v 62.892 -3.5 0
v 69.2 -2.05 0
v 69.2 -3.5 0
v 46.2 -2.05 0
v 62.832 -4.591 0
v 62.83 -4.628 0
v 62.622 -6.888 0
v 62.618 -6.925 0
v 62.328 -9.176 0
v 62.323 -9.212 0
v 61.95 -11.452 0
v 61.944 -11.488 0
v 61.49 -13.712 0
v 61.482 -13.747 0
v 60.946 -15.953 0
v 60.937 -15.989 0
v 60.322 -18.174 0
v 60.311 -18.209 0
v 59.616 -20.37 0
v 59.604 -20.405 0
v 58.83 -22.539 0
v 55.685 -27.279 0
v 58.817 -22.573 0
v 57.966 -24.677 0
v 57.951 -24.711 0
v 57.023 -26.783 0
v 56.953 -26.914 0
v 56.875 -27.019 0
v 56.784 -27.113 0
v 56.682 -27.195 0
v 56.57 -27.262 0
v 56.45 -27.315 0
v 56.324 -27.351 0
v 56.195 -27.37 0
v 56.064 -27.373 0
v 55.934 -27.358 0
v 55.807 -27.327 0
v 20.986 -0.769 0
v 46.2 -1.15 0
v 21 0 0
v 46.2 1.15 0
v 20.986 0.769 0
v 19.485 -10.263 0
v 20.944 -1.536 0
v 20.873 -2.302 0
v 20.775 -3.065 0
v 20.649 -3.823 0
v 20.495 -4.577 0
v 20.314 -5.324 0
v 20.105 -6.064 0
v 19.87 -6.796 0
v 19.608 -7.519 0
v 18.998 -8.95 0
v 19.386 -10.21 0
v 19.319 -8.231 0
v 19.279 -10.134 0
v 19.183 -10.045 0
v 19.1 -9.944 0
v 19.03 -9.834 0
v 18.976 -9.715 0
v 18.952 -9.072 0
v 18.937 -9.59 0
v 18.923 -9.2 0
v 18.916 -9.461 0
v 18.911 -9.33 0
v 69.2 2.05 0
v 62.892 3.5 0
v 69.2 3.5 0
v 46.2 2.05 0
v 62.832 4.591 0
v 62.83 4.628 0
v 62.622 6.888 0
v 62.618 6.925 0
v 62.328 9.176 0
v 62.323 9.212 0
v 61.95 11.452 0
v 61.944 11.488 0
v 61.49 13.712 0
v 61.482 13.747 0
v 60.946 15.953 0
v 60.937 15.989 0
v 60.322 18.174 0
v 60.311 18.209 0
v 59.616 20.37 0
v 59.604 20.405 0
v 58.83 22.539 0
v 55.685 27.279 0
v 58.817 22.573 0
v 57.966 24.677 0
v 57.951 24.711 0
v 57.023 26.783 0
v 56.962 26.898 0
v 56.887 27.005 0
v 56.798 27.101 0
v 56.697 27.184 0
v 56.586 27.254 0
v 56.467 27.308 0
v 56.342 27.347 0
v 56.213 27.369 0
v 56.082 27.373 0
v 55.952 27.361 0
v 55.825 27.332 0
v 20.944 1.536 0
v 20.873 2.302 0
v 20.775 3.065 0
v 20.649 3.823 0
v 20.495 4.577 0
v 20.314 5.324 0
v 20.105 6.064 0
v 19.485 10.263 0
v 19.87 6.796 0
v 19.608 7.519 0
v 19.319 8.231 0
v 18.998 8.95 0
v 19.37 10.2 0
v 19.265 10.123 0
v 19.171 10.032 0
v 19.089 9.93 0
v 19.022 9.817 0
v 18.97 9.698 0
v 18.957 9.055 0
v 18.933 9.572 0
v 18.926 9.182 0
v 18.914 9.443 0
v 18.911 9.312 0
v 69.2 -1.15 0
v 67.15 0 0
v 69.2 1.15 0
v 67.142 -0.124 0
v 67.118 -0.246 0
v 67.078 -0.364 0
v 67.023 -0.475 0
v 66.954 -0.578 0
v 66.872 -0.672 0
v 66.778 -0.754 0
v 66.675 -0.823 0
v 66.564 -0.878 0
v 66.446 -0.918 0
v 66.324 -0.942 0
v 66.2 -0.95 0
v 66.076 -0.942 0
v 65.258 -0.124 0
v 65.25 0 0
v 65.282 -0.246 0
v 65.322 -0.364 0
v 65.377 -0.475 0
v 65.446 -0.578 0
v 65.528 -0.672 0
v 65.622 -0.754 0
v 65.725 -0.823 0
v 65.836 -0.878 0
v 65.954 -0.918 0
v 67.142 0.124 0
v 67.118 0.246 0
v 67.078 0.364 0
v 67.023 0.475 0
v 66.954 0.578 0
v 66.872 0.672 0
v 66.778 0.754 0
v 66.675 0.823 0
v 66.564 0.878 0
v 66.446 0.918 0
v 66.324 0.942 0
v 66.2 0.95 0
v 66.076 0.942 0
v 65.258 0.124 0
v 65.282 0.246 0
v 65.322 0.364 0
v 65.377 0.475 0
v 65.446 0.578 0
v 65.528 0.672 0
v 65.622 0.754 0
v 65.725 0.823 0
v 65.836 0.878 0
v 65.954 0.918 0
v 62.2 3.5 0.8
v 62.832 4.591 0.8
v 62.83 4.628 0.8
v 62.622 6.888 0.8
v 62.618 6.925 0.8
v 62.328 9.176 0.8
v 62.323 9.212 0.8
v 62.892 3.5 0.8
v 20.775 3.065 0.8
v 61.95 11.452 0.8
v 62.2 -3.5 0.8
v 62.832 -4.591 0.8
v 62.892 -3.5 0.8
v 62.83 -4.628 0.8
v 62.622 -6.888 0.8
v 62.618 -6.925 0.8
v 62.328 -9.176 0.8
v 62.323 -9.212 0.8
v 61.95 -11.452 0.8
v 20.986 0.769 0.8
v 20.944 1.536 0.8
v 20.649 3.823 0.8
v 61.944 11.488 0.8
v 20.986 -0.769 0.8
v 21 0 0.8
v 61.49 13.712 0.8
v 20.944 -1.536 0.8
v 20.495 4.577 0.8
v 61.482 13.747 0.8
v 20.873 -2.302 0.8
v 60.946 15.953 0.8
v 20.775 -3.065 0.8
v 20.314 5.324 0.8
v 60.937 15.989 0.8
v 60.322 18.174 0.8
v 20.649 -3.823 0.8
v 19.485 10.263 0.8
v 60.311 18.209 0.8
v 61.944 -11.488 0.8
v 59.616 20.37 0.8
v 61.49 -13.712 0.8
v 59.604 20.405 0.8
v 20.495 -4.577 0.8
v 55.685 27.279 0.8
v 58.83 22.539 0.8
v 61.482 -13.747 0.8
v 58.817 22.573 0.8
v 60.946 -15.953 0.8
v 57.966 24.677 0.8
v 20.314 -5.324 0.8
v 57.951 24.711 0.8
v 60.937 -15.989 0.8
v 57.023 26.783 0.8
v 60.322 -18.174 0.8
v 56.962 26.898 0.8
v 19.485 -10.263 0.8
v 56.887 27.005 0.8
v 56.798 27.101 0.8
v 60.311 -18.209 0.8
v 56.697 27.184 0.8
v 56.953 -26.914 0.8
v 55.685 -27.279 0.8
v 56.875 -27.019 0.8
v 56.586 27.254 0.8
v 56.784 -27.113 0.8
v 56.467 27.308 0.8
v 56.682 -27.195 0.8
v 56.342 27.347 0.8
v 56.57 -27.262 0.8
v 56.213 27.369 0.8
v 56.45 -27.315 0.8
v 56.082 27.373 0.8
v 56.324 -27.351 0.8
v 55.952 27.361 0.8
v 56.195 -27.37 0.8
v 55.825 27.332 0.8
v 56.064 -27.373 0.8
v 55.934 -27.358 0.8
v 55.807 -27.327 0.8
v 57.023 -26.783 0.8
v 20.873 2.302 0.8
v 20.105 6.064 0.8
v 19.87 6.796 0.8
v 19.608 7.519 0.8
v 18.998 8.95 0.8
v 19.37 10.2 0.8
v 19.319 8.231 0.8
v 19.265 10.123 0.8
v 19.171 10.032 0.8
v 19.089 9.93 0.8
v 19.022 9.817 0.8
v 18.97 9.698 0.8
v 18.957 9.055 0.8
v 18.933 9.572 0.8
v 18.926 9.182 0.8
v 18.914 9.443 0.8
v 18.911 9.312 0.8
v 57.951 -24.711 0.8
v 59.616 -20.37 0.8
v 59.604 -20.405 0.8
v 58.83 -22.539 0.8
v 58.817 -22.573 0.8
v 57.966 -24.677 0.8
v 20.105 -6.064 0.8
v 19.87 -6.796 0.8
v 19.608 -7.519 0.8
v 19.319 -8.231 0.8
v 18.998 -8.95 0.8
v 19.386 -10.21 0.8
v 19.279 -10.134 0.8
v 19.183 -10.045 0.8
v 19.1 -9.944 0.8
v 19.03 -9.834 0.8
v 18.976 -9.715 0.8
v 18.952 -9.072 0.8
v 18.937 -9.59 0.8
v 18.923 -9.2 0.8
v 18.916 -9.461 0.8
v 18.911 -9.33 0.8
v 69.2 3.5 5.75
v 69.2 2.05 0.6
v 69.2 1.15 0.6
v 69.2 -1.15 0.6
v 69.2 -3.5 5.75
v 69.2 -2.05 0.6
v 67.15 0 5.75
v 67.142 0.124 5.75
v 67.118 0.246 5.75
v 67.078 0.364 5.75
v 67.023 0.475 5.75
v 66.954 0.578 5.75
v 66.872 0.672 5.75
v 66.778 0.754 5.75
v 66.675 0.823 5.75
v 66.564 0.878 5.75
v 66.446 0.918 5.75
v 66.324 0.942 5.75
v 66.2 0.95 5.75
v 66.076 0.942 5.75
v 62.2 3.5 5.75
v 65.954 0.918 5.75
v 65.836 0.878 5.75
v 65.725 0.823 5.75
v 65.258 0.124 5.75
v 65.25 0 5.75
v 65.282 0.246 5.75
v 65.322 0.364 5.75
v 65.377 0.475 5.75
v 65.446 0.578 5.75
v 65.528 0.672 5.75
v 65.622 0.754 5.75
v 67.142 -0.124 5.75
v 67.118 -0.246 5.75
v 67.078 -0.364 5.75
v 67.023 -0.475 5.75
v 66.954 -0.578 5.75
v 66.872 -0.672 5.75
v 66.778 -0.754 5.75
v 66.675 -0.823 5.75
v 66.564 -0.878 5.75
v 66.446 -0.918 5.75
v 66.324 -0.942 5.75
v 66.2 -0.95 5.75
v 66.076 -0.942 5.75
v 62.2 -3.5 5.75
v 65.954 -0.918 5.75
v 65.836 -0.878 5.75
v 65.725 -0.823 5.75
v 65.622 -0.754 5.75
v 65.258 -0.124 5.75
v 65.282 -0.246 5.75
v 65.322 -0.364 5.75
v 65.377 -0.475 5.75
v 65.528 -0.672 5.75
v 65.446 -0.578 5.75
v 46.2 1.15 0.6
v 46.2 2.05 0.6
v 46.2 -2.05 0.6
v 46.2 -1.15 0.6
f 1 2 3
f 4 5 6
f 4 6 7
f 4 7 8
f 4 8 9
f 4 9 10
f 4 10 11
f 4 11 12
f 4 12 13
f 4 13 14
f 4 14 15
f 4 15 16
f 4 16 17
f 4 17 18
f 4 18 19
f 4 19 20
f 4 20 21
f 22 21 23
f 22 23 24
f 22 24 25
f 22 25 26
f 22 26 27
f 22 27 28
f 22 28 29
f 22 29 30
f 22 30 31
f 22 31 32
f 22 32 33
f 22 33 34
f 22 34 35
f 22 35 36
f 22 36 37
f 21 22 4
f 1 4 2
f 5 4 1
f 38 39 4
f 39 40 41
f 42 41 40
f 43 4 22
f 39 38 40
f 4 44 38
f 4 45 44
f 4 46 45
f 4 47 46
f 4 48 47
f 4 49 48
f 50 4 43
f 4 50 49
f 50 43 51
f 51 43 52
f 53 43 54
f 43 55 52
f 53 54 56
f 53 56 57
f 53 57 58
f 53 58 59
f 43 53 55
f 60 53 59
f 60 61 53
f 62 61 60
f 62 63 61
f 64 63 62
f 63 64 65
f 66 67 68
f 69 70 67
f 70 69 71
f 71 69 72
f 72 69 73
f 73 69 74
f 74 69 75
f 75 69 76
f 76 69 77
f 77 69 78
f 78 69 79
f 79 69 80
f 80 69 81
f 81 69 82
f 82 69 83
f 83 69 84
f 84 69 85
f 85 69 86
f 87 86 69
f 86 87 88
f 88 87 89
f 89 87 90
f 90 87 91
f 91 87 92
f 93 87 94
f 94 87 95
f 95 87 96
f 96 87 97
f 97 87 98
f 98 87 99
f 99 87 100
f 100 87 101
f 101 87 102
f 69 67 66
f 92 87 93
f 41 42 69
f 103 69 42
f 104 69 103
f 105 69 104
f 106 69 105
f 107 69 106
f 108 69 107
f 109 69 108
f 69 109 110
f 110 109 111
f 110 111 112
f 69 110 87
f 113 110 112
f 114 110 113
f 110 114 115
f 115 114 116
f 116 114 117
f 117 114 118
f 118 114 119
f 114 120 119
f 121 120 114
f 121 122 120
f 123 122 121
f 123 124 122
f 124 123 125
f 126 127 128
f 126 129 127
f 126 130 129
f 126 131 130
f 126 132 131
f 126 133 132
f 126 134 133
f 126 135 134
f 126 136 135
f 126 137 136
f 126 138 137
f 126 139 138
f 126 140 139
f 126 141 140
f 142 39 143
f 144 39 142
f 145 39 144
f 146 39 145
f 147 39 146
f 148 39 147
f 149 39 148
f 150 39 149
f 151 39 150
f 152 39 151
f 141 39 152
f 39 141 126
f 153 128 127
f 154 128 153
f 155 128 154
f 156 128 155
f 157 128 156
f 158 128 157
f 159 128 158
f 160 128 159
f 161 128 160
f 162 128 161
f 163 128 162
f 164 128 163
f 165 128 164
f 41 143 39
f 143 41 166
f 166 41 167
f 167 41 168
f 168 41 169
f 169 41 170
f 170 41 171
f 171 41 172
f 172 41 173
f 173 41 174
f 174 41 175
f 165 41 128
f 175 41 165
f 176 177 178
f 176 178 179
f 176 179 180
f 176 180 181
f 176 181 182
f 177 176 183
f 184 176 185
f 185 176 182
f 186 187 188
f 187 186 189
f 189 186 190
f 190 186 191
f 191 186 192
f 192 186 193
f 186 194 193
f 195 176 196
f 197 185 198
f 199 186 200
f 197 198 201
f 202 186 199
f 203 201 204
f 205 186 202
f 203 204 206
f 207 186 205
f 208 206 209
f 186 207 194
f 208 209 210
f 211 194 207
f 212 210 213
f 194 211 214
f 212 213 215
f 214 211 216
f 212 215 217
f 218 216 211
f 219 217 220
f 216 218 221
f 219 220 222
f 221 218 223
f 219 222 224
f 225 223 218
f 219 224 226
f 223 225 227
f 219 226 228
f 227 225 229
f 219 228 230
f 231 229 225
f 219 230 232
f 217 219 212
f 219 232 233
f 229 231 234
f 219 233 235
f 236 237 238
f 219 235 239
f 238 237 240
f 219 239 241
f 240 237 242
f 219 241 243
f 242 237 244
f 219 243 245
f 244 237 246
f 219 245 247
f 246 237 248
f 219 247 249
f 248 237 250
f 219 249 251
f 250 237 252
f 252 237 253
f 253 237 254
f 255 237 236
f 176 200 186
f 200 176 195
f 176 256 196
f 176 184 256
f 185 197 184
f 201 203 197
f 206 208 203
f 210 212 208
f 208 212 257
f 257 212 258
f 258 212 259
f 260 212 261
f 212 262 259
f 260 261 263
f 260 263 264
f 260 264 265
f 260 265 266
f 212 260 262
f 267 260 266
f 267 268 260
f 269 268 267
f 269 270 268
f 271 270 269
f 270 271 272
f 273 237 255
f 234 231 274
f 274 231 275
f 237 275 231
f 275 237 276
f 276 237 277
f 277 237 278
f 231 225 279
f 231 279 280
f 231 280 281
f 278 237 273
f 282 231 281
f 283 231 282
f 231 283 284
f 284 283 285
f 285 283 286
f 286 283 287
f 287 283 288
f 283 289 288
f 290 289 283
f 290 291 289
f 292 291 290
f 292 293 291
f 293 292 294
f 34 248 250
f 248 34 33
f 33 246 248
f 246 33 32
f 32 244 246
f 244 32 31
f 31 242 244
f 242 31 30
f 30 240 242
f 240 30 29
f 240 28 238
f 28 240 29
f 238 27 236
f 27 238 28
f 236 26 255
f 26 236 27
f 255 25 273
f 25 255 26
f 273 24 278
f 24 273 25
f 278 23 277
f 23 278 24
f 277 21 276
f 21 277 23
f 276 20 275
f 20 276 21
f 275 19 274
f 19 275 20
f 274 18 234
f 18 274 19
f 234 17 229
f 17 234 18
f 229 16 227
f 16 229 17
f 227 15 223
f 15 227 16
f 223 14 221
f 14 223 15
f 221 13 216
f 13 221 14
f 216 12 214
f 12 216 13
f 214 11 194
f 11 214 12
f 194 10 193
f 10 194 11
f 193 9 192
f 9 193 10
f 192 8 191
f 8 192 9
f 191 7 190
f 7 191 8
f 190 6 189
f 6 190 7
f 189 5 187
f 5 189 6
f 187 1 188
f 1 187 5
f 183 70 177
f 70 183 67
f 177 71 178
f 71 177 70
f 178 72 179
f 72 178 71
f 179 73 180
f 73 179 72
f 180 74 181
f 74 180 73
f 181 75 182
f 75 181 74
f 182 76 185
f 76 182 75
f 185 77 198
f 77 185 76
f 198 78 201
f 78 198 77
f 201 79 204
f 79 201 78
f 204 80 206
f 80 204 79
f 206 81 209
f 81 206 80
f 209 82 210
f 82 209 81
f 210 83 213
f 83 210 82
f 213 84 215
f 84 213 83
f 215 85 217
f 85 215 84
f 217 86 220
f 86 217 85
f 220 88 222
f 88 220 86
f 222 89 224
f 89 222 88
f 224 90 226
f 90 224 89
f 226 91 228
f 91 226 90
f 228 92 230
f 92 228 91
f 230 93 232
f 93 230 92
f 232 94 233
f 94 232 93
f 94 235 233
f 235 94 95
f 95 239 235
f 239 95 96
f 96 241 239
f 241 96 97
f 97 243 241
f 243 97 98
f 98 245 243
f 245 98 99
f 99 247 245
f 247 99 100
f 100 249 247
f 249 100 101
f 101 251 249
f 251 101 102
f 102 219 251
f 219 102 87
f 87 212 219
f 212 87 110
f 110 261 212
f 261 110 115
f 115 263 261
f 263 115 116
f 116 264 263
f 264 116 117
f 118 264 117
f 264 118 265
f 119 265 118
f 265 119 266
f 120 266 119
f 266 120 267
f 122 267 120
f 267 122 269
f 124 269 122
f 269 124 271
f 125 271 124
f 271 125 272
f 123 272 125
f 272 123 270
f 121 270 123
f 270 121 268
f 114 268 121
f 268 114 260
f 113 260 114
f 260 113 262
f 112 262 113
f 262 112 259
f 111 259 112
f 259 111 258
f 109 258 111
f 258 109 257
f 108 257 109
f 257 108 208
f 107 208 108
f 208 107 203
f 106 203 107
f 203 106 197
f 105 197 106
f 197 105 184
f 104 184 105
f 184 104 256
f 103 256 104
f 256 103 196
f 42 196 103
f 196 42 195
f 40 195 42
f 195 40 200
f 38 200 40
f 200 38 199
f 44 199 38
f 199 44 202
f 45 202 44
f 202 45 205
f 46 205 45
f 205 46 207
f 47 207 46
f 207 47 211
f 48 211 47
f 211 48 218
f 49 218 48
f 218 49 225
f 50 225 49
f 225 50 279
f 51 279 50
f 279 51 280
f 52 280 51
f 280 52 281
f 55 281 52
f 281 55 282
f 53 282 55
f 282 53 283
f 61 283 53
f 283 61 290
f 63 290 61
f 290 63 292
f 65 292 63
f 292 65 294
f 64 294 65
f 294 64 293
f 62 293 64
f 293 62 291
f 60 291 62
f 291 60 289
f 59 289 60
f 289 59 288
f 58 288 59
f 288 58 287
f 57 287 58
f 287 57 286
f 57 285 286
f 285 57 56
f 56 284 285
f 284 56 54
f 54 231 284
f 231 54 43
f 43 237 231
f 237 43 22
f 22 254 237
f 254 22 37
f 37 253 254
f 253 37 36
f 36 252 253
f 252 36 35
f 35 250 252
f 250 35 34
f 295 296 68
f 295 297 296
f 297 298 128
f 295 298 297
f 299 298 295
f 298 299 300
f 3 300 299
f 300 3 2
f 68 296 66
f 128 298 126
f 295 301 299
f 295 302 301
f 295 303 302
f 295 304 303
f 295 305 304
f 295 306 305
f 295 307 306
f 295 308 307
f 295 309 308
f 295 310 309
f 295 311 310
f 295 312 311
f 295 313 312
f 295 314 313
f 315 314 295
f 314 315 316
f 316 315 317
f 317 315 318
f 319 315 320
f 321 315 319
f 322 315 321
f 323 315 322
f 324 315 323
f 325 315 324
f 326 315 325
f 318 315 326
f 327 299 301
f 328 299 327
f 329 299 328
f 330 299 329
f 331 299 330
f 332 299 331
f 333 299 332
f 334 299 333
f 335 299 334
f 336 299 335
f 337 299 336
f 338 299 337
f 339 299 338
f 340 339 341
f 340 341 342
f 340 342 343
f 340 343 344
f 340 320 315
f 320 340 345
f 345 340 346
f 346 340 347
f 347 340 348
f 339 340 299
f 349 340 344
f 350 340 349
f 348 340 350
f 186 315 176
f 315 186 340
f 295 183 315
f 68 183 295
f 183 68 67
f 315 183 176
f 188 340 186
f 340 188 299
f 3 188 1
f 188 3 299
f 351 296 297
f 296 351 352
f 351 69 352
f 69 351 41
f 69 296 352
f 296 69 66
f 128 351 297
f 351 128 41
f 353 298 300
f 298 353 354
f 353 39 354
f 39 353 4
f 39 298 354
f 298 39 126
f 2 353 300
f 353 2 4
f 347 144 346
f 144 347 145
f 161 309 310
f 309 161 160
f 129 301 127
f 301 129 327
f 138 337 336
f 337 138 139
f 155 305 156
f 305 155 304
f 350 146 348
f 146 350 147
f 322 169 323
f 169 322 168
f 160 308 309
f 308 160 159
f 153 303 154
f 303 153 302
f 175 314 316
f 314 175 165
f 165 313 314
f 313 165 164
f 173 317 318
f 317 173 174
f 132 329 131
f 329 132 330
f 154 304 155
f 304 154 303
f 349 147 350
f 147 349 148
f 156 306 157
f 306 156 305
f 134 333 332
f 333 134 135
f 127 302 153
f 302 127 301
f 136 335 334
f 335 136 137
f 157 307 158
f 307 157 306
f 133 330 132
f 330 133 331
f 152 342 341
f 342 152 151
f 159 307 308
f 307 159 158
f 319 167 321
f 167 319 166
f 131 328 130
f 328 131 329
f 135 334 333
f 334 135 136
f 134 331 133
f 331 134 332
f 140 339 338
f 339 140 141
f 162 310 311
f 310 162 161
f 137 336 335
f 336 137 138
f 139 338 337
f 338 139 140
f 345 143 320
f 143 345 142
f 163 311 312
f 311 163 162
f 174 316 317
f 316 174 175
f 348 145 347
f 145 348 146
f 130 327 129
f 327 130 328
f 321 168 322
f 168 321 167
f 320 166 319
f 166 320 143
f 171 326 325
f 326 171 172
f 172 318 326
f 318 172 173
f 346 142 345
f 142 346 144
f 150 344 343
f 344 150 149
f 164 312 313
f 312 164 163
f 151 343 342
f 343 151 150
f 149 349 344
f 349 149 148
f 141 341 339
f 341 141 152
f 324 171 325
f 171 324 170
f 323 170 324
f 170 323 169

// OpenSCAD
// file: parameters.scad
// =============================================================================
// Gen-BH — nightly 2026-10-04 (physics_scorer, honest magpylib watts)
// All 16 O20 magnets used as 8 double-height (10 mm) poles: 4-pole / 6-coil dual rotor on 3 mm steel, tall 9.9 mm copper; O5 assists left out because the scorer shows they do not help this pole layout.
// Clocking 0 deg (magnets N facing S) + D-flat keyed bore + index notch + flip-symmetric hole map.
// Windable 2-piece bobbin; turns = physics_scorer turns_fit; copper only between flanges.
// Steel back-iron: two 3.0 mm mild-steel discs (steel_backiron_disc.dxf); magnets sit ON the steel
// (through-pockets) -> score with --back-iron.
// =============================================================================
topology            = "dual_rotor";

// --- Wire / winding (physics_scorer winding-fit) -------------------------------
wire_awg            = 26;
wire_od             = 0.45;     // insulated OD mm (bare 0.405)
fill_realistic      = 0.60;     // insulated-wire area / window, hand-wound layered
turns               = 571;       // = physics_scorer turns_fit (do NOT raise)
coil_former_type    = "bobbin";
coil_core_inset     = 15.30;     // radial copper build: hub = copper boundary inset by this
wind_build_axial    = 0.0;      // nothing proud of the flanges
wind_build_radial   = 0.0;

// --- Bobbin (base + lid) ---------------------------------------------------------
coil_id_r           = 22.00;    // copper boundary sector
coil_od_r           = 62.00;
span_deg            = 50.35;    // = pitch - 2*asin((wall+0.85)/coil_id_r) -> >=1.2 mm stator web
former_web          = 9.90;     // copper height between flanges (TALL copper: steel keeps Bz up)
flange_t            = 0.80;     // >= 0.8 mm FDM wall rule (tall winds push on the flanges)
wall                = 1.00;     // flange lip beyond copper
former_bare_h       = former_web + 2 * flange_t;
coil_envelope_h     = former_bare_h + 2 * wind_build_axial;
tab_w               = 7.0;
tab_len             = 7.0;
tab_h               = former_bare_h / 2;
pin_d               = 1.9;      // 1.75 mm filament locating pin
coil_mount_r        = coil_od_r + 0.2 + 4.0;
lead_y              = 1.6;
lead_slot_w         = 0.9;
lead_groove_d       = 0.6;

// --- Gap -------------------------------------------------------------------------
run_clear           = 0.50;     // rotor face -> flange
gap_spacer_h        = run_clear + wind_build_axial;
m2m                 = coil_envelope_h + 2 * run_clear;   // rotor face to rotor face (= gap_sleeve length)

// --- Stator ----------------------------------------------------------------------
coil_stations       = 6;
bay_clear           = 0.25;
stator_thick        = former_bare_h;                        // bobbins flush both faces
stator_od           = 148.0;
shaft_clear_stator  = 14.0;     // stator is static; gap sleeve OD 12 spins inside

// --- Rotor(s) --------------------------------------------------------------------
magnet_Br           = 1.43;     // N52
magnet_d_large      = 20.0;
magnet_h_large      = 10.0;      // two O20x5 stacked per pocket
magnet_h_small      = 10.0;      // two O5x5 stacked per pocket
halbach_magnetisation = "none";  // NO O5 assist magnets in this kit (scorer: they do not help 4-pole)
rotor_b_same_axis   = true;     // same-index magnets share one axis: N faces S across the gap
large_pocket_d      = 20.3;
small_pocket_d      = 5.3;
pocket_h            = 10.10;     // THROUGH the carrier: magnet back face sits on the steel disc
large_n             = 4;
R_large             = 44.0;
small_r_list        = [];       // no O5 pockets
carrier_od          = 126.0;
carrier_thick       = pocket_h;
hub_h               = 10.0;
hub_od              = 24.0;     // slim hub so the M4 brace rods fit at R~18 inside the coil ring
hub_insert_d        = 4.0;      // M3 heat-set insert, radial, bears on the D-flat
rotor_b_offset_deg  = 0.0;      // CLOCKING: magnets directly opposite
shaft_key           = "dflat";
dflat_depth         = 0.5;      // 8 mm shaft with 0.5 mm flat (7.5 across flat)
index_notch_d       = 3.0;

// --- Steel back-iron (buyable laser-cut) -------------------------------------------
steel_t             = 3.0;      // mild steel thickness (not modelled by the image method; >=3 avoids saturation)
steel_center_hole   = 26.0;     // slips over the rotor hub (OD 24)

// --- Modular MAX interface ----------------------------------------------------------
shaft_bore          = 8.35;
dflat_x             = 4.0 - dflat_depth + (shaft_bore - 8.0) / 2;
bearing_d           = 21.85;
bearing_h           = 7.2;
m3_clear            = 3.5;
bolt_r_inner        = 27.0;     // M3 steel-disc clamp bolts (inside the magnet ring)
bolt_n_inner        = 4;
bolt_inner_angles   = [45, 135, 225, 315];
bolt_r_outer        = 58.0;     // M3 steel-disc clamp bolts (outside the magnet ring)
bolt_outer_angles   = [45, 135, 225, 315];
flange_bolt_r       = 69.0;     // frame rods: OUTSIDE the rotor OD (rotors spin inside them)
flange_bolt_n       = 6;
flange_bolt_offset  = 30.00;    // between coil stations -> never cuts a lead groove/tab
brace_r             = 17.5;
brace_d             = 4.3;      // temporary M4 jack rods (assembly only)
brace_n             = 4;
brace_angles        = [0, 90, 180, 270];          // flip-symmetric

spacer_pad_od       = 14.0;
spacer_pad_id       = m3_clear;
endbell_od          = 148.0;
endbell_thick       = 8.0;
endbell_shaft_clear = 10.0;
collar_h            = 10.0;
standoff_od         = 9.0;
frame_standoff_h    = run_clear + carrier_thick + hub_h + collar_h + 2.0;
sleeve_od           = 12.0;
plate_max_mm        = 410;

$fn = 64;
// main file
// Gen-BH — bobbin LID (top flange + locating tab). Print x6, flange face DOWN on the bed.
// CA-glue onto the hub top BEFORE winding. Tab = lap joint into the stator tab pocket; 1.75 mm filament
// pin through pin hole + stator ledge, trim flush. Lead slots carry both leads flush.
include <parameters.scad>;
$fn = 48;
module sector_2d(r_in, r_out, ang) {
    polygon([
        for (a = [-ang/2 : ang/24 : ang/2]) [r_in*cos(a), r_in*sin(a)],
        for (a = [ang/2 : -ang/24 : -ang/2]) [r_out*cos(a), r_out*sin(a)]
    ]);
}
module footprint_2d() { offset(r=wall) sector_2d(coil_id_r, coil_od_r, span_deg); }
module hub_2d()       { offset(delta=-coil_core_inset) sector_2d(coil_id_r, coil_od_r, span_deg); }

difference() {
    union() {
        linear_extrude(flange_t) footprint_2d();
        translate([coil_od_r + 0.2, -tab_w/2, 0]) cube([tab_len, tab_w, tab_h]);
    }
    translate([coil_mount_r, 0, -0.1]) cylinder(d=pin_d, h=tab_h + 1);
    for (y = [lead_y, -lead_y])
        translate([coil_od_r - coil_core_inset - 0.5, y - lead_slot_w/2, -0.1])
            cube([coil_core_inset + tab_len + 2, lead_slot_w, lead_groove_d + 0.1]);
}
